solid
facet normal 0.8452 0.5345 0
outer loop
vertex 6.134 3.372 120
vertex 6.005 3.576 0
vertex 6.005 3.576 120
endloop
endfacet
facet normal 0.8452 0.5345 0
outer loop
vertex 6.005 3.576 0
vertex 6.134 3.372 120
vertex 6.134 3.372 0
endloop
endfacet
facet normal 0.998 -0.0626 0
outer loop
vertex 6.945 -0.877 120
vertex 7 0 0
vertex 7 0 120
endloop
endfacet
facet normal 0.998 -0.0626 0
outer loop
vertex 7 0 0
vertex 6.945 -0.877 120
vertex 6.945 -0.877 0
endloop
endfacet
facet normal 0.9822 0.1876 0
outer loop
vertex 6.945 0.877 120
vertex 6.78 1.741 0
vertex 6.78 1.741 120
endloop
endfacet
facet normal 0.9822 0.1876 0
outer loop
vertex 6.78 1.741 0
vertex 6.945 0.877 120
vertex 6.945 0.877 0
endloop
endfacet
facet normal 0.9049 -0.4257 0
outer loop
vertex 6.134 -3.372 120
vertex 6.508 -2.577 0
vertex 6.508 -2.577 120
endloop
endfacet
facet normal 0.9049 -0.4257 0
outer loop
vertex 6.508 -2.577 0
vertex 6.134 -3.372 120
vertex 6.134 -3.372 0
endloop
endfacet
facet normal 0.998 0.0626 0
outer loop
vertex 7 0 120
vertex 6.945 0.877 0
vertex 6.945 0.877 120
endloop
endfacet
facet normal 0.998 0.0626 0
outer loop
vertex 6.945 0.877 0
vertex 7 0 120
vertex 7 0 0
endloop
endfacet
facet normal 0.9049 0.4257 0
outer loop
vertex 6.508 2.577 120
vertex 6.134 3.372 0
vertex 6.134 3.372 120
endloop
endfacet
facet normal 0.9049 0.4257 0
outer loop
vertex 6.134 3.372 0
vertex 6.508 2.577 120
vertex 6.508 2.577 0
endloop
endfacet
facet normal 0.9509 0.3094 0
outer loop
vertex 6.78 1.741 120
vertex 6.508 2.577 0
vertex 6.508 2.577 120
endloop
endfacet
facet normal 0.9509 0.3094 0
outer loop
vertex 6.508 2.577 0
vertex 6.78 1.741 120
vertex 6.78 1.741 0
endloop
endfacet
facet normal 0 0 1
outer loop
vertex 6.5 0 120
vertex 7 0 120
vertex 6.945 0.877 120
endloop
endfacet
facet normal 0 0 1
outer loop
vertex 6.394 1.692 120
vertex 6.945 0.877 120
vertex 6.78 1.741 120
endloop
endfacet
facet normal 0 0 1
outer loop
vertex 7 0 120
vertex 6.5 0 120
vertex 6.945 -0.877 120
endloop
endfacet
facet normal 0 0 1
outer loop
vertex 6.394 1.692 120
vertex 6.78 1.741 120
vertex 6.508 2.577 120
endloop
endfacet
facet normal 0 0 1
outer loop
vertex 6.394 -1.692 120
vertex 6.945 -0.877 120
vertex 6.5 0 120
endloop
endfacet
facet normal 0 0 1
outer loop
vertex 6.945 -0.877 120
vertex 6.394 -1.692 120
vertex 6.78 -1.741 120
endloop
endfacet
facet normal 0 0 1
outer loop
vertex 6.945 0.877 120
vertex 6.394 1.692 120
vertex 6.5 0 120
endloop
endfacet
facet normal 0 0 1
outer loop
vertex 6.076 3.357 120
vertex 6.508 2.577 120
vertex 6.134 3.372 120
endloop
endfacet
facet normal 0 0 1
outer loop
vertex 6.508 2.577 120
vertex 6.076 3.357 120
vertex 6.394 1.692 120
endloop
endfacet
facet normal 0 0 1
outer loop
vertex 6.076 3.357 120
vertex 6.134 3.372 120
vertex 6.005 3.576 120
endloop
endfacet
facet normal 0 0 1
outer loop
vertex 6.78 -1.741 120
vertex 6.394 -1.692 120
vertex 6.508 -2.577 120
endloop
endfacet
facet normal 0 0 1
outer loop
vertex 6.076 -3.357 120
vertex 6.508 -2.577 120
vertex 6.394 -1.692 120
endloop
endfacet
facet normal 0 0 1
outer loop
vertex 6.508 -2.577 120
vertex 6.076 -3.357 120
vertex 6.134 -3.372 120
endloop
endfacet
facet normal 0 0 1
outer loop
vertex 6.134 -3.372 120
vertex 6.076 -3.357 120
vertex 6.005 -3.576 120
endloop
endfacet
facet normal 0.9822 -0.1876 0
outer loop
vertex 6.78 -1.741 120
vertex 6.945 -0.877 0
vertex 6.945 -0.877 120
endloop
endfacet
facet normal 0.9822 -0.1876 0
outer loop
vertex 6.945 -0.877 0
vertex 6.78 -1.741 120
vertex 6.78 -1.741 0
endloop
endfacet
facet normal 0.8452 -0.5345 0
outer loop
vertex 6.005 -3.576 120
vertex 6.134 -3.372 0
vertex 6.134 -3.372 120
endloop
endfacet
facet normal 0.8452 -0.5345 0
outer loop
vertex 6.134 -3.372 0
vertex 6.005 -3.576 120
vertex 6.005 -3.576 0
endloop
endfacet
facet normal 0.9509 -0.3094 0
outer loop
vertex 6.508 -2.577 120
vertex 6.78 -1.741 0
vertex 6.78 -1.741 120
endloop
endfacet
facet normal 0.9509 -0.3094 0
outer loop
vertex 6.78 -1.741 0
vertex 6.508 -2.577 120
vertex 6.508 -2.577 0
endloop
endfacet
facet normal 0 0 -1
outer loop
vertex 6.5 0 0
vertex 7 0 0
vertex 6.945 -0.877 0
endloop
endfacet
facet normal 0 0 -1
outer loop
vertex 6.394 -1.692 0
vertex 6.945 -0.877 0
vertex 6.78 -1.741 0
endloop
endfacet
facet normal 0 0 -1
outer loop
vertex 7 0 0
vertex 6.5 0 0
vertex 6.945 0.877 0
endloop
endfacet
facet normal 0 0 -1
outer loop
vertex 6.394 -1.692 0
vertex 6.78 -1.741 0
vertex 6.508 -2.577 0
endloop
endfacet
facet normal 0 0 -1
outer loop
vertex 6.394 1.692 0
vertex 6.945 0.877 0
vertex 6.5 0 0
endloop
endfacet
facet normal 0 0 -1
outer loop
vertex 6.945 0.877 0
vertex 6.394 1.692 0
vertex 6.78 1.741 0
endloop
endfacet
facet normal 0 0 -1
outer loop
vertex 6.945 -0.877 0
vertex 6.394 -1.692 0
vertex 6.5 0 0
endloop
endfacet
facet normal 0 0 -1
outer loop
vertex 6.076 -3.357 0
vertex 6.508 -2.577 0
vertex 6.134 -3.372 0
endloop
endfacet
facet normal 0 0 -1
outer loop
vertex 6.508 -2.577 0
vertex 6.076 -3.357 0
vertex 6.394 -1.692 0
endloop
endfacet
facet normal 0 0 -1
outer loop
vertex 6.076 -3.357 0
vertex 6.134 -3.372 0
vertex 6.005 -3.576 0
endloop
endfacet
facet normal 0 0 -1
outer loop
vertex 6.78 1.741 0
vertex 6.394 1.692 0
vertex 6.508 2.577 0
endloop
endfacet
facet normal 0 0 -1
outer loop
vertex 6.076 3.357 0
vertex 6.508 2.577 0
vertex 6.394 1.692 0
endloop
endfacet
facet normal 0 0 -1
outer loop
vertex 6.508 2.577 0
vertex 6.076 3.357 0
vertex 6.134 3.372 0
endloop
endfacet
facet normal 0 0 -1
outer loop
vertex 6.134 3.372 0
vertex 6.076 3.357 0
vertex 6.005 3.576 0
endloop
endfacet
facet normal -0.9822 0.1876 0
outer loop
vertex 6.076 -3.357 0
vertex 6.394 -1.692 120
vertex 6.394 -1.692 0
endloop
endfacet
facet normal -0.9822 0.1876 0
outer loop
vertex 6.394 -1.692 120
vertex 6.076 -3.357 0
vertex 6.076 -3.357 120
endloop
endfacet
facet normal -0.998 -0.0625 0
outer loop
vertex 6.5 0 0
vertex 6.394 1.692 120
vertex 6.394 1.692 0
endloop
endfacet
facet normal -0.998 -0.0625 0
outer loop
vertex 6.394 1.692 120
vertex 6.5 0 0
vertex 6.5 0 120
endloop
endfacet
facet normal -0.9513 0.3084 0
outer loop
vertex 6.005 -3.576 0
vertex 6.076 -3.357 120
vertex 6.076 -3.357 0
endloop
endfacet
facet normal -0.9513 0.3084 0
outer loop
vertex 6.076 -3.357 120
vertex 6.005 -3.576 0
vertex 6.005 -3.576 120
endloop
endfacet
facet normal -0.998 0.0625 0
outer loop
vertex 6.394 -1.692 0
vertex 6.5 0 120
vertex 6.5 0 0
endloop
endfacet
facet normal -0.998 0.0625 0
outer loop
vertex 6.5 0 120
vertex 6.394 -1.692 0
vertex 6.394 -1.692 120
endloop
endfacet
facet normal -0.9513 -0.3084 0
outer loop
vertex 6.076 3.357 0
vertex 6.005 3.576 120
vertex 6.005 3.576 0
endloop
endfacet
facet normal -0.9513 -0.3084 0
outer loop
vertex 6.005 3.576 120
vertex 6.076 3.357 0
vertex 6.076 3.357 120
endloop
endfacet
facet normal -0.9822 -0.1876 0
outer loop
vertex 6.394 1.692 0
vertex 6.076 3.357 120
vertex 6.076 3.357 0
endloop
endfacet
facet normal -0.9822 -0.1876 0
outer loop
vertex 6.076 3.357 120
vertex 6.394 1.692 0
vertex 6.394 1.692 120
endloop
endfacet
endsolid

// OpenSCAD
$fn = 50;


difference() {
	union() {
		cylinder(h = 120, r = 7.0000000000);
		translate(v = [-10.0000000000, 0, 0]) {
			cylinder(h = 120, r = 7.0000000000);
		}
	}
	union() {
		cylinder(h = 120, r = 3.2500000000);
		cylinder(h = 120, r = 1.8000000000);
		cylinder(h = 120, r = 1.8000000000);
		cylinder(h = 120, r = 1.8000000000);
		translate(v = [-14.5000000000, 0, 0]) {
			hull() {
				translate(v = [-3.7500000000, 0.0000000000, 0]) {
					cylinder(h = 120, r = 10.5000000000);
				}
				translate(v = [3.7500000000, 0.0000000000, 0]) {
					cylinder(h = 120, r = 10.5000000000);
				}
				translate(v = [-3.7500000000, -0.0000000000, 0]) {
					cylinder(h = 120, r = 10.5000000000);
				}
				translate(v = [3.7500000000, -0.0000000000, 0]) {
					cylinder(h = 120, r = 10.5000000000);
				}
			}
		}
		translate(v = [-7.0000000000, 0, 0.0000000000]) {
			cylinder(h = 120, r = 13.5000000000);
		}
	}
}
